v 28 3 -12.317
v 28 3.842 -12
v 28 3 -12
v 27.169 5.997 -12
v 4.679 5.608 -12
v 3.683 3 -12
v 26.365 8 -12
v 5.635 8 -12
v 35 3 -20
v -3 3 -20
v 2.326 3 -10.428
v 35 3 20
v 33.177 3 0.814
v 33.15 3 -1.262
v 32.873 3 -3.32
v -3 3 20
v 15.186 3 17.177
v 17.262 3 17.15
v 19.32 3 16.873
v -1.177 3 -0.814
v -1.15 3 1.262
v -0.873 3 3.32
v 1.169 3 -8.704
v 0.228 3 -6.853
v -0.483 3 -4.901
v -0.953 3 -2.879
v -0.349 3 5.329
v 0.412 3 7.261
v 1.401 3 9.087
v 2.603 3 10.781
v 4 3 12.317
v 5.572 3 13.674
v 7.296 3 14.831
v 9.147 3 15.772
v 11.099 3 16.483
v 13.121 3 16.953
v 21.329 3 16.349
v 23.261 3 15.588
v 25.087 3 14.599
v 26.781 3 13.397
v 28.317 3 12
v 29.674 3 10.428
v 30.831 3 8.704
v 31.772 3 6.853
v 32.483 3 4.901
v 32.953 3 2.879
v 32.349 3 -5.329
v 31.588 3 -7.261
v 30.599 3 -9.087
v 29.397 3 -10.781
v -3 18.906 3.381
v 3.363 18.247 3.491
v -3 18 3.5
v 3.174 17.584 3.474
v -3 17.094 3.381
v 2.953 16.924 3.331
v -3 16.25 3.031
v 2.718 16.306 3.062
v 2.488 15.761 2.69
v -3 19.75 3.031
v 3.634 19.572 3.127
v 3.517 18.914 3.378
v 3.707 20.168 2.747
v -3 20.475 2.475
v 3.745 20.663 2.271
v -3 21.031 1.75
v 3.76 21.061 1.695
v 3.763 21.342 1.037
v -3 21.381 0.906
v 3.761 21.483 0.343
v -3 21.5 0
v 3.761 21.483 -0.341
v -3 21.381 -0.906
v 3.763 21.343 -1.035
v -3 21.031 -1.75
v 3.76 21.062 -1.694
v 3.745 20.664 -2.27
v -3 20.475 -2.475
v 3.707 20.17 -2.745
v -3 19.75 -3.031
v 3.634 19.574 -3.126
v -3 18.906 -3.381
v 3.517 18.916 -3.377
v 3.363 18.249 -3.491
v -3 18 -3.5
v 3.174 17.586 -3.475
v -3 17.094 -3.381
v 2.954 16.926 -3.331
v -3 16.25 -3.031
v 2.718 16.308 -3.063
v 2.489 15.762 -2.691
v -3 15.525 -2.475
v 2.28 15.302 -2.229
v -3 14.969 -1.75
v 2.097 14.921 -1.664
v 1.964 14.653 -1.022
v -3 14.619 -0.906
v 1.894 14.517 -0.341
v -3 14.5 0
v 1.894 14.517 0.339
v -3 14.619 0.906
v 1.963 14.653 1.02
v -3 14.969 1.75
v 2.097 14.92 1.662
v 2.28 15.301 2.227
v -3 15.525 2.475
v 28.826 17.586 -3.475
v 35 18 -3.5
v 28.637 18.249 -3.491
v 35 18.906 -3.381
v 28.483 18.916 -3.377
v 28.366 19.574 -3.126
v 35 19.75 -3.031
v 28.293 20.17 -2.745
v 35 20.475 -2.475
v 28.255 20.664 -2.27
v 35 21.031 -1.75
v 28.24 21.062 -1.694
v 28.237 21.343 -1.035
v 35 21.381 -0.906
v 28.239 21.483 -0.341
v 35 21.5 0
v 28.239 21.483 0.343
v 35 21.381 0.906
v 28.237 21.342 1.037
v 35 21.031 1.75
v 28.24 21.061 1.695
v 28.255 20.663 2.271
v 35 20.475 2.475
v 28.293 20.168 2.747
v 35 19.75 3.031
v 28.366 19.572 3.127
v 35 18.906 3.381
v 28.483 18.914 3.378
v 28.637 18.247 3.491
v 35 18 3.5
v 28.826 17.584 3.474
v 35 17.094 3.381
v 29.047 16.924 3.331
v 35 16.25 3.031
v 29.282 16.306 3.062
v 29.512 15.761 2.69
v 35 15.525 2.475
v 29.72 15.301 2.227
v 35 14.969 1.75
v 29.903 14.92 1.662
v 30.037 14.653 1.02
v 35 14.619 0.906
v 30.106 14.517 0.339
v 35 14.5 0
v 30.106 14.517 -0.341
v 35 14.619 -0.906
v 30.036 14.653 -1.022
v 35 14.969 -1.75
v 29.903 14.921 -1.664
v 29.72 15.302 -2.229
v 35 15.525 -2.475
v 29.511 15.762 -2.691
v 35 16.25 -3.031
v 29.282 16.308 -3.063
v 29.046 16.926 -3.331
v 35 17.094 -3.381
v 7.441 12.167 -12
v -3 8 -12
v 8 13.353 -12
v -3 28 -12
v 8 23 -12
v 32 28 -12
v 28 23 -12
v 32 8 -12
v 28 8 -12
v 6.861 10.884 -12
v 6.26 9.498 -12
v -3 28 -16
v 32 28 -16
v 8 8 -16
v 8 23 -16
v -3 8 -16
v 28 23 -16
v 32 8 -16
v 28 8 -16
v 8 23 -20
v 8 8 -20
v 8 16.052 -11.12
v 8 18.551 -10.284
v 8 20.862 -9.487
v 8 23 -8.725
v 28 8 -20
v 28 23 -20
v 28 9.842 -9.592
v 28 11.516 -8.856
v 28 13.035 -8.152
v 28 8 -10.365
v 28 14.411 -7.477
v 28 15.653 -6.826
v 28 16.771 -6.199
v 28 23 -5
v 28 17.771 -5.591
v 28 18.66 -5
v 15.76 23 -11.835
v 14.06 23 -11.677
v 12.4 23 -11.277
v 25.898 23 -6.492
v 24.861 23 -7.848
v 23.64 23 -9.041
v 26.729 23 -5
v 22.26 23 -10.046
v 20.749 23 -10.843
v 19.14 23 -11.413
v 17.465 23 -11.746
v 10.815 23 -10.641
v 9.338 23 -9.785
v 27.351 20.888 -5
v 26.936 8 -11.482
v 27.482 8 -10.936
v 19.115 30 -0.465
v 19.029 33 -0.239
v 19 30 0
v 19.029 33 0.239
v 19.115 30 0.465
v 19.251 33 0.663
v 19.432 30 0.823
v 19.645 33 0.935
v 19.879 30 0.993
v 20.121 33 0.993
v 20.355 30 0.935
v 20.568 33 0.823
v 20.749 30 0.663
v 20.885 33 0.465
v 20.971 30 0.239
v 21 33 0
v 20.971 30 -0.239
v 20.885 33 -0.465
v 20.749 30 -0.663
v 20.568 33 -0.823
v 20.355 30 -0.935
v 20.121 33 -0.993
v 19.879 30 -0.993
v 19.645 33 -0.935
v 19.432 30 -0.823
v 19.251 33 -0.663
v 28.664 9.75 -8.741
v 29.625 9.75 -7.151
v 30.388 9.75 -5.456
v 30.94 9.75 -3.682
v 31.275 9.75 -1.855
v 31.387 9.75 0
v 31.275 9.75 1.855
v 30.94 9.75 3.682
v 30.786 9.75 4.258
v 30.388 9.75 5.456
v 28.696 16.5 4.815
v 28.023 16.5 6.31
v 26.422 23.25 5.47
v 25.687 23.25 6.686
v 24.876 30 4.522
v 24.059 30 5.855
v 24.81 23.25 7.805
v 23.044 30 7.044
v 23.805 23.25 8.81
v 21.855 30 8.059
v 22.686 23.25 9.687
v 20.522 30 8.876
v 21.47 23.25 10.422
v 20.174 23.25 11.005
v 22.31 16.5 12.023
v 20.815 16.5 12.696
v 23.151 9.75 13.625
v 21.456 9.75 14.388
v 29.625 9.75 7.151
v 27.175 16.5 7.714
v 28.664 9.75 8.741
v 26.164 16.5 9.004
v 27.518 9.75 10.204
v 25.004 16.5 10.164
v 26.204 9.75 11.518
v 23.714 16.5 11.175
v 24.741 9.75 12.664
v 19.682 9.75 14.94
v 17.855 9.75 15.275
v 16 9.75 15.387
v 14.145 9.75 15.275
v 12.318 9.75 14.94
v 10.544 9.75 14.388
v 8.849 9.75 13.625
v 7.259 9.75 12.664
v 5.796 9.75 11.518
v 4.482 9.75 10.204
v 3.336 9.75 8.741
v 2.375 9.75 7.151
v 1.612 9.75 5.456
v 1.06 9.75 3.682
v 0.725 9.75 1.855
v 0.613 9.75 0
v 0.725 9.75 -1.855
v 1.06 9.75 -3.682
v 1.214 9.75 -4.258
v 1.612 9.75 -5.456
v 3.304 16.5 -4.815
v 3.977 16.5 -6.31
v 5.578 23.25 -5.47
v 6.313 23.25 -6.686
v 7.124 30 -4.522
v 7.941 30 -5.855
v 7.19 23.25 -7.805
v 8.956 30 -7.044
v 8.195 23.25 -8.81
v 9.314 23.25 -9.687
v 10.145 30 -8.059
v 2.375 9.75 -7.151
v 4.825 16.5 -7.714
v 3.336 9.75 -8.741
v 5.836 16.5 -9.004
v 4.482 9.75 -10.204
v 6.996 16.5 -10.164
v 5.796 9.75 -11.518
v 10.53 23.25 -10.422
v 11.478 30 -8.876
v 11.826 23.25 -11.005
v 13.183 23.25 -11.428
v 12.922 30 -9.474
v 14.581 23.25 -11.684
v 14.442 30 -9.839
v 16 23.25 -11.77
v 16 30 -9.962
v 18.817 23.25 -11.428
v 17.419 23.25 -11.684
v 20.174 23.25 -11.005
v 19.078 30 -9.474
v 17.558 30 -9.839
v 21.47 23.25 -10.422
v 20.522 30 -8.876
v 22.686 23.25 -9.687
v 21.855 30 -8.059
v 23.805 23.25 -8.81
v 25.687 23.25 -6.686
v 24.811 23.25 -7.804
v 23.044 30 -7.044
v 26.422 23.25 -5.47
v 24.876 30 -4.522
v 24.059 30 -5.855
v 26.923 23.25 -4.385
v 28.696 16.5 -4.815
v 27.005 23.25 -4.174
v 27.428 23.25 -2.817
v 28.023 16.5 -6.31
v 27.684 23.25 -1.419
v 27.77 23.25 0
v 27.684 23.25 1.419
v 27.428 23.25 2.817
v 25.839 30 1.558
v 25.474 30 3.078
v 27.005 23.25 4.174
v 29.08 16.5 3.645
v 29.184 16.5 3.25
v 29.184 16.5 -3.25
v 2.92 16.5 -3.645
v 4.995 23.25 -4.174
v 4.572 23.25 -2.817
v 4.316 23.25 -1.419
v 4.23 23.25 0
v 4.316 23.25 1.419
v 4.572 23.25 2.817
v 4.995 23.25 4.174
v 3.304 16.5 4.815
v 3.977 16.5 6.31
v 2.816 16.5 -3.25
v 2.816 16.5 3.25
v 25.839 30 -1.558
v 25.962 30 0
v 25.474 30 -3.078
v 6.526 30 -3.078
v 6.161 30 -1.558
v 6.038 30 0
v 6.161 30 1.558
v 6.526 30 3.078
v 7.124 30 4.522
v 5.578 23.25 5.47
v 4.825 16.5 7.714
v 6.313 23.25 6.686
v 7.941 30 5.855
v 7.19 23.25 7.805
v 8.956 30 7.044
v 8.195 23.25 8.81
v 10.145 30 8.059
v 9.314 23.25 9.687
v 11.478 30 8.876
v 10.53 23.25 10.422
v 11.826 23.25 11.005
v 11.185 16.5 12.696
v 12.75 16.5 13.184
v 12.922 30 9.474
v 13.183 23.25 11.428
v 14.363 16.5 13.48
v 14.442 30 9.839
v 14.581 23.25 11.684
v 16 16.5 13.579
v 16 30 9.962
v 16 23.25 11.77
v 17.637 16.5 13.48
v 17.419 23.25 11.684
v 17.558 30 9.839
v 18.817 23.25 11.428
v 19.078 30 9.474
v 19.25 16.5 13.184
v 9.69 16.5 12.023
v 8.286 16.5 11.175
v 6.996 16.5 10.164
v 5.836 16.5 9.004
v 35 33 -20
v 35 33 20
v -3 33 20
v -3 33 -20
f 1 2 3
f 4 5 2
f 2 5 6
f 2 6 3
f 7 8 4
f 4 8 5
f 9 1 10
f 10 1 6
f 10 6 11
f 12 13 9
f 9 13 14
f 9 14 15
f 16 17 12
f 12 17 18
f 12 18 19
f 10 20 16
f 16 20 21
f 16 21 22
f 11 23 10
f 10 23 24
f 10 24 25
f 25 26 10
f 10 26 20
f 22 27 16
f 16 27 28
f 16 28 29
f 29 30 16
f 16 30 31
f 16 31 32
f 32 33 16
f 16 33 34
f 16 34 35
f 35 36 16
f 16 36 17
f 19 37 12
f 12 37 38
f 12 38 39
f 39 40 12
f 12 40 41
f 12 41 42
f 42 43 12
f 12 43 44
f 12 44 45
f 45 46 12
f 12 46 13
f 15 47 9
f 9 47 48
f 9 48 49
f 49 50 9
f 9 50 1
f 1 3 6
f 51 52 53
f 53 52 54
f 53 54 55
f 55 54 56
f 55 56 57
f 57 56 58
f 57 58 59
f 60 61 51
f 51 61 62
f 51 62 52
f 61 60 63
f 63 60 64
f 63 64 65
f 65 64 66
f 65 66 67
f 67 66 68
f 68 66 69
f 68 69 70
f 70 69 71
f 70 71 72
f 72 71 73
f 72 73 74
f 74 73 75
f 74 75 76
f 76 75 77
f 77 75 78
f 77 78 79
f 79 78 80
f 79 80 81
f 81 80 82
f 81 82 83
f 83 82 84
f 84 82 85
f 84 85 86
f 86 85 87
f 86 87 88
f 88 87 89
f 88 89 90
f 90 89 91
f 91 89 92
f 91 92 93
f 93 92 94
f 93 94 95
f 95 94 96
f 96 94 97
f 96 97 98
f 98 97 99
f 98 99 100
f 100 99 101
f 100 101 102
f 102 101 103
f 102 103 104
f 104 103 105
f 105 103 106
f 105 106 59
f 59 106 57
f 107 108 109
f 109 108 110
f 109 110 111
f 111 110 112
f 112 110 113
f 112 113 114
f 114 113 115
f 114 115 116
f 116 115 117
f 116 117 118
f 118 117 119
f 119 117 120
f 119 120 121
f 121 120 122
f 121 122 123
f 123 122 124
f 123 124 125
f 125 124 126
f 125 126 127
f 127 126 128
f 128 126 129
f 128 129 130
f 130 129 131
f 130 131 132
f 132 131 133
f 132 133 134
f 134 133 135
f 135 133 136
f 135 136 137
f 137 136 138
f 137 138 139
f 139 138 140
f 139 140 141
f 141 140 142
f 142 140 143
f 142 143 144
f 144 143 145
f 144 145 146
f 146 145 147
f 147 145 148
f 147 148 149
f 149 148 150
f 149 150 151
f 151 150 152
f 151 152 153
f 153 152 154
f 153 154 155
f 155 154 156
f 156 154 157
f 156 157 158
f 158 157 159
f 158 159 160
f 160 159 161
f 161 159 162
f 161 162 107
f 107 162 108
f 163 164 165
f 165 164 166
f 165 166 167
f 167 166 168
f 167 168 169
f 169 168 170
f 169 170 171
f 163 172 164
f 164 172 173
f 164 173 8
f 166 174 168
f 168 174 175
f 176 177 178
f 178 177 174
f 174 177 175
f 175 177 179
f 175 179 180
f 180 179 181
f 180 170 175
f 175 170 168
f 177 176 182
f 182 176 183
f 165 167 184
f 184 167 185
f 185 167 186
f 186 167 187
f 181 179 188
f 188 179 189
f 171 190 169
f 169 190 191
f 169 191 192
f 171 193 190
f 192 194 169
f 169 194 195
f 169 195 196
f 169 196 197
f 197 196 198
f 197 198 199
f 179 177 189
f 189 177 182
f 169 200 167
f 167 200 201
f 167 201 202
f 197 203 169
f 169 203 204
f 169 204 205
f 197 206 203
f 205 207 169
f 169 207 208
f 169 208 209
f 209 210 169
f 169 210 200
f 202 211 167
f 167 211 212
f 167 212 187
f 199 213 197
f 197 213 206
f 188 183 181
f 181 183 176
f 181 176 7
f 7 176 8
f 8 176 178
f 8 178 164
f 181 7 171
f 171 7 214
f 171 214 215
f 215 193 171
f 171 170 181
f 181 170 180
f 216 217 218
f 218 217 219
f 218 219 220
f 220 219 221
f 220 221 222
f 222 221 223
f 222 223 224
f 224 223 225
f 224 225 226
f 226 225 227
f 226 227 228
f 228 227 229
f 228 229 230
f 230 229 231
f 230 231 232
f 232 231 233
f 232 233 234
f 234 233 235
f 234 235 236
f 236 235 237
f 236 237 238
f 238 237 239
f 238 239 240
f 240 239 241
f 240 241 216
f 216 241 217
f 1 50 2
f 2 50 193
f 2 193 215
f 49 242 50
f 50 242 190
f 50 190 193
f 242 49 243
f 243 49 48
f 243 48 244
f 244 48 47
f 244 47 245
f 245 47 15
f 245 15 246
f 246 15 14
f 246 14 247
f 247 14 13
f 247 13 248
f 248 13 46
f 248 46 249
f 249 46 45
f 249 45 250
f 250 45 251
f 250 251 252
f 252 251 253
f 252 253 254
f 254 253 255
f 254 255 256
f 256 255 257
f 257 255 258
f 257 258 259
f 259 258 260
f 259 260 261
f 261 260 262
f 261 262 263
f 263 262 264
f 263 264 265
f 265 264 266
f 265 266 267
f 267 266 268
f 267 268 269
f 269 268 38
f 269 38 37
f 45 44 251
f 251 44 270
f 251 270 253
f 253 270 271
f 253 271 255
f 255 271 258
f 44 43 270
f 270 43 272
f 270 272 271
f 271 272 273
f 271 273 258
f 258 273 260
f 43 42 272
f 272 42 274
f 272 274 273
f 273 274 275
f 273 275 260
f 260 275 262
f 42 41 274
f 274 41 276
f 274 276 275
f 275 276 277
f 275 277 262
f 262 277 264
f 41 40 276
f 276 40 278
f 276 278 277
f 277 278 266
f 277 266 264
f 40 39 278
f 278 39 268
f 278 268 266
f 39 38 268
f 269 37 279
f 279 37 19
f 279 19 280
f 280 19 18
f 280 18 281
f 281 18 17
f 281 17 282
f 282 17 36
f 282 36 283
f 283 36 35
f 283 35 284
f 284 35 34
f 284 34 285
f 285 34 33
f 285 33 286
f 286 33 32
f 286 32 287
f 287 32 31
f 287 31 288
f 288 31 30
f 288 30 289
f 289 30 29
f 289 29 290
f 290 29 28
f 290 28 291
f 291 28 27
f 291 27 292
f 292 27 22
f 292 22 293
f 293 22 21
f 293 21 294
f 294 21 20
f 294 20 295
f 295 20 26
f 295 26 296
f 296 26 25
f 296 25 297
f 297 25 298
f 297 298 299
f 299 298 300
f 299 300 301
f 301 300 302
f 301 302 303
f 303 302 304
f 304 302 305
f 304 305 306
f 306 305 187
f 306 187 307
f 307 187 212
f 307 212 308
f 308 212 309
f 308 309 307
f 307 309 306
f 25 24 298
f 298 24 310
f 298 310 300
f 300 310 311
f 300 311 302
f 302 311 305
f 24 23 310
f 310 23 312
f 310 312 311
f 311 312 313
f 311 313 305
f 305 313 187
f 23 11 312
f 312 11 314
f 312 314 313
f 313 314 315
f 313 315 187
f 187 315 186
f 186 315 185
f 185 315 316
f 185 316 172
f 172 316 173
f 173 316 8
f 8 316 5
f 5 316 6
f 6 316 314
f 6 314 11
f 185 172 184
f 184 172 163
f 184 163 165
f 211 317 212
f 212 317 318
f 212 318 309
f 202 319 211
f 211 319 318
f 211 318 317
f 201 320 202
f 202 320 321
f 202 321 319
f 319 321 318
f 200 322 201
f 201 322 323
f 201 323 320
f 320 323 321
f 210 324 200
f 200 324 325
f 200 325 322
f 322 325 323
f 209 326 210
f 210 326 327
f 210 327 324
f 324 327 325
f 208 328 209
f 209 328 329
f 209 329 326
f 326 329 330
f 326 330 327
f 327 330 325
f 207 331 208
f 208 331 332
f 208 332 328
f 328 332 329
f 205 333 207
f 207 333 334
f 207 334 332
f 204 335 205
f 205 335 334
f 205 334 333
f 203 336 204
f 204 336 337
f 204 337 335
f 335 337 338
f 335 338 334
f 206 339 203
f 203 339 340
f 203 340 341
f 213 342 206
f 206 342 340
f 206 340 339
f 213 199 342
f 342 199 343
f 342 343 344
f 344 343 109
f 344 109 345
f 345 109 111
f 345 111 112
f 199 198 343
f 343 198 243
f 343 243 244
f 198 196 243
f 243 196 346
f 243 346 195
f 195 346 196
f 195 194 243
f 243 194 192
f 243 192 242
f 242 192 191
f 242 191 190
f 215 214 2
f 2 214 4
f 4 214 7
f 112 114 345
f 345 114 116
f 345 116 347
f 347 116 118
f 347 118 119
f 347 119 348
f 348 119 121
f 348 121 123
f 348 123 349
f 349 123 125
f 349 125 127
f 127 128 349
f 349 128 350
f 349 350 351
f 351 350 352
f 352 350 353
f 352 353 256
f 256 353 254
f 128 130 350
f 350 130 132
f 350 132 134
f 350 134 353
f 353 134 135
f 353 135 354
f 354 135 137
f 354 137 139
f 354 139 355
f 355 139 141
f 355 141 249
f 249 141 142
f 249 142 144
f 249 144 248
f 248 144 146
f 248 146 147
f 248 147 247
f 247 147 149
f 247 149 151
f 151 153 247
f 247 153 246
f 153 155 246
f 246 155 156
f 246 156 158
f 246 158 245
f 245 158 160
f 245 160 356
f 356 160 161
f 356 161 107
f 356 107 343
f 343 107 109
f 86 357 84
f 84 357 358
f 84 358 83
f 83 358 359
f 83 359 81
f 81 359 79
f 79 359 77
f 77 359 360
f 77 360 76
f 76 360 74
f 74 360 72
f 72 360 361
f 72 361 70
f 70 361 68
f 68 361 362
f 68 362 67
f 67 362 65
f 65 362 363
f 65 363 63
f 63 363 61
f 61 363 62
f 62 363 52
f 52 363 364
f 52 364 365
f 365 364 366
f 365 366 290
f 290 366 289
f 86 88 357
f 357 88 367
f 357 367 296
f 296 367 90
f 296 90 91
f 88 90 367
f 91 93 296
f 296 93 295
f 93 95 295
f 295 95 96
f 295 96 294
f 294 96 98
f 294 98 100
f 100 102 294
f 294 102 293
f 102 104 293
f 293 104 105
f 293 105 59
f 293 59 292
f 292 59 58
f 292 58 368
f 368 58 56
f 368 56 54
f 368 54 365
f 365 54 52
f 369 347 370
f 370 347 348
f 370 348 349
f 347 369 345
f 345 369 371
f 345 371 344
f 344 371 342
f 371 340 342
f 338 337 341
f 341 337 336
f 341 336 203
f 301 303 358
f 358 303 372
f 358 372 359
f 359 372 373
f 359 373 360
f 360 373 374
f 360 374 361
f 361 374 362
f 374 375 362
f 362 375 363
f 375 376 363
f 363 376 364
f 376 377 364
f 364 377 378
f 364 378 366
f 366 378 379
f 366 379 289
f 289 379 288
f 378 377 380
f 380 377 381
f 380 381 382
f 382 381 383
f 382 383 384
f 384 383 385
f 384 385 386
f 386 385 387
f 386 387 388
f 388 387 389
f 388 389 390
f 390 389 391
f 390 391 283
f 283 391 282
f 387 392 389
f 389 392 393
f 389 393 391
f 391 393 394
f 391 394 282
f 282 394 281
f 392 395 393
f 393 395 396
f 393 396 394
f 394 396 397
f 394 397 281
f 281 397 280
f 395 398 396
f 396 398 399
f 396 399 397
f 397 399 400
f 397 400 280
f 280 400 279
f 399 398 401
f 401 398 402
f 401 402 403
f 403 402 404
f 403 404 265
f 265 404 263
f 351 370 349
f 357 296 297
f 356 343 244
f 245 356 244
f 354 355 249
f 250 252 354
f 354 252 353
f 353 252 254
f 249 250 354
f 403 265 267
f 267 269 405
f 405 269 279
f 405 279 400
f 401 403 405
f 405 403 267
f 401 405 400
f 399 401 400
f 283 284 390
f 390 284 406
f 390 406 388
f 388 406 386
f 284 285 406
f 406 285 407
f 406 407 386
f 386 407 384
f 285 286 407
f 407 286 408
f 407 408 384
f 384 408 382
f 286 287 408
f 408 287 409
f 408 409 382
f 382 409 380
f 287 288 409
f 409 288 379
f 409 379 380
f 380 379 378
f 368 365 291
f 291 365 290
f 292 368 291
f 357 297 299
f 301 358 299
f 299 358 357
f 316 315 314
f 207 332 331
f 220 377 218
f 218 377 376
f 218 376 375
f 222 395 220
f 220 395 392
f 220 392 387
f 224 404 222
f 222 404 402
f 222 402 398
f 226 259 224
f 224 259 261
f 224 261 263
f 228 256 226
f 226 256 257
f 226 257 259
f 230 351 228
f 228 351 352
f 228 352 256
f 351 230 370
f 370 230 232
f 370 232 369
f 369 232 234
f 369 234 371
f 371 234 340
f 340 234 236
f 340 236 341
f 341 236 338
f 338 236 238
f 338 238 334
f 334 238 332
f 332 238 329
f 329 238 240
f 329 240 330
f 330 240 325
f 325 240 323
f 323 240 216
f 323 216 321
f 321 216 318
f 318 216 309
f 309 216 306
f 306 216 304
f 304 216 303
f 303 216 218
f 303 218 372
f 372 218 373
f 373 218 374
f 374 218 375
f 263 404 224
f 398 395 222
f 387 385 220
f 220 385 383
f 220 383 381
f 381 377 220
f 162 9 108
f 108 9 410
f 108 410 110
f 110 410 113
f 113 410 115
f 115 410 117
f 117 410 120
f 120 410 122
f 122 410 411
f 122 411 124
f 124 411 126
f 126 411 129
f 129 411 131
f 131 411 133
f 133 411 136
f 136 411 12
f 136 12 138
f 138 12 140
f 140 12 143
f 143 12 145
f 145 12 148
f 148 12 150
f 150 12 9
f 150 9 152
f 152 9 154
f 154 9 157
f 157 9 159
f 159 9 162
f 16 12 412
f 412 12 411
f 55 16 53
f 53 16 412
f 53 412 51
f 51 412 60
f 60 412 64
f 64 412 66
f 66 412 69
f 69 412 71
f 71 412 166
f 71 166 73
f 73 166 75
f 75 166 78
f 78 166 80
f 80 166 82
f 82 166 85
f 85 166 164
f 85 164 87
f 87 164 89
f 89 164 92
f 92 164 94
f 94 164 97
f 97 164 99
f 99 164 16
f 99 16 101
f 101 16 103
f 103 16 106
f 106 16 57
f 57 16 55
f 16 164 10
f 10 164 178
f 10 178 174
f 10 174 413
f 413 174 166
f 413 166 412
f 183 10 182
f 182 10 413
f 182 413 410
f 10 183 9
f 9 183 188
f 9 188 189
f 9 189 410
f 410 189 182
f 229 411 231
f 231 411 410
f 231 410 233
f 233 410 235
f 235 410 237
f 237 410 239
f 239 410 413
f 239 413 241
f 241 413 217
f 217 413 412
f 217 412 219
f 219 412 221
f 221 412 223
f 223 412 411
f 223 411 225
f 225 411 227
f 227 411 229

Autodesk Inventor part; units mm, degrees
ref_plane "YZ Plane" through (0, 0, 0) normal (1, 0, 0) x (0, 1, 0)
ref_plane "XZ Plane" through (0, 0, 0) normal (0, 1, 0) x (-1, 0, 0)
ref_plane "XY Plane" through (0, 0, 0) normal (0, 0, 1) x (1, 0, 0)
ref_plane "Work Plane13" through (0, 3, 0) normal (0, 1, 0) x (1, 0, 0)
sketch "Sketch45" plane through (0, 3, 0) normal (0, 1, 0) x (1, 0, 0)
  line L0 (35, -20) -> (-3, -20)
  line L1 (-3, -20) -> (-3, 20)
  line L2 (-3, 20) -> (35, 20)
  line L3 (35, 20) -> (35, -20)
  point P0 (0, 0)
  dimension "d142" = 38
  dimension "d143" = 40
extrude "Extrusion34" add sketch "Sketch45" along normal blind 30
sketch "Sketch46" plane through (0, 33, 0) normal (0, 1, 0) x (1, 0, 0)
  point P0 (0, 0)
ref_plane "Work Plane11" through (0, 0, 0) normal (0, -1, 0) x (1, 0, 0)
sketch "Sketch47" plane through (0, 0, 0) normal (0, -1, 0) x (1, 0, 0)
  circle A0 centre (16, 0) radius 18
  point P0 (0, 0)
  dimension "d146" = 36
extrude "Extrusion35" cut sketch "Sketch47" against normal blind 30 draft -15
sketch "Sketch48" plane through (0, 33, 0) normal (0, 1, 0) x (1, 0, 0)
  point P0 (0, 0)
sketch "Sketch49" plane through (0, 33, 0) normal (0, 1, 0) x (1, 0, 0)
  circle A0 centre (20, 0) radius 1
  point P0 (0, 0)
  dimension "d149" = 2
extrude "Extrusion36" cut sketch "Sketch49" against normal through all
ref_plane "Work Plane7" through (35, 3, -20) normal (0, 0, -1) x (-1, 0, 0)
sketch "Sketch58" plane through (35, 3, -20) normal (0, 0, -1) x (-1, 0, 0)
  line L0 (7, 20) -> (27, 20)
  line L1 (27, 20) -> (27, 5)
  line L2 (27, 5) -> (7, 5)
  line L3 (7, 5) -> (7, 20)
  point P0 (35, -3)
  dimension "d156" = 20
  dimension "d157" = 15
extrude "Extrusion38" cut sketch "Sketch58" against normal blind 15
ref_plane "Work Plane4" through (-3, 3, -20) normal (-1, 0, 0) x (0, 0, 1)
sketch "Sketch59" plane through (-3, 3, -20) normal (-1, 0, 0) x (0, 0, 1)
  line L0 (4, 25) -> (8, 25)
  line L1 (8, 25) -> (8, 5)
  line L2 (8, 5) -> (4, 5)
  line L3 (4, 5) -> (4, 25)
  point P0 (20, -3)
  dimension "d160" = 4
  dimension "d161" = 20
extrude "Extrusion39" cut sketch "Sketch59" against normal blind 35
ref_plane "Work Plane1" through (0, 3, 0) normal (0, 1, 0) x (1, 0, 0)
ref_plane "Work Plane6" through (0, 23, 0) normal (0, 1, 0) x (1, 0, 0)
sketch "Sketch62" plane through (-3, 3, -20) normal (-1, 0, 0) x (0, 0, 1)
  circle A0 centre (20, 15) radius 3.5
  point P0 (20, -3)
  dimension "d172" = 7
extrude "Extrusion42" cut sketch "Sketch62" against normal through all
sketch "Sketch65" plane through (0, 3, 0) normal (0, -1, 0) x (1, 0, 0)
  line L0 (-3, -12) -> (32, -12) projected
  line L1 (28, -20) -> (28, -16) projected
  line L2 (3.5815, -12) -> (28, -12)
  line L3 (28, -12) -> (28, -17.2375)
  line L4 (28, -17.2375) -> (3.5815, -17.2375)
  line L5 (3.5815, -17.2375) -> (3.5815, -12)
  point P0 (0, 0)
extrude "Extrusion44" add sketch "Sketch65" against normal blind 5
properties part number "liquid port_only_v04"
